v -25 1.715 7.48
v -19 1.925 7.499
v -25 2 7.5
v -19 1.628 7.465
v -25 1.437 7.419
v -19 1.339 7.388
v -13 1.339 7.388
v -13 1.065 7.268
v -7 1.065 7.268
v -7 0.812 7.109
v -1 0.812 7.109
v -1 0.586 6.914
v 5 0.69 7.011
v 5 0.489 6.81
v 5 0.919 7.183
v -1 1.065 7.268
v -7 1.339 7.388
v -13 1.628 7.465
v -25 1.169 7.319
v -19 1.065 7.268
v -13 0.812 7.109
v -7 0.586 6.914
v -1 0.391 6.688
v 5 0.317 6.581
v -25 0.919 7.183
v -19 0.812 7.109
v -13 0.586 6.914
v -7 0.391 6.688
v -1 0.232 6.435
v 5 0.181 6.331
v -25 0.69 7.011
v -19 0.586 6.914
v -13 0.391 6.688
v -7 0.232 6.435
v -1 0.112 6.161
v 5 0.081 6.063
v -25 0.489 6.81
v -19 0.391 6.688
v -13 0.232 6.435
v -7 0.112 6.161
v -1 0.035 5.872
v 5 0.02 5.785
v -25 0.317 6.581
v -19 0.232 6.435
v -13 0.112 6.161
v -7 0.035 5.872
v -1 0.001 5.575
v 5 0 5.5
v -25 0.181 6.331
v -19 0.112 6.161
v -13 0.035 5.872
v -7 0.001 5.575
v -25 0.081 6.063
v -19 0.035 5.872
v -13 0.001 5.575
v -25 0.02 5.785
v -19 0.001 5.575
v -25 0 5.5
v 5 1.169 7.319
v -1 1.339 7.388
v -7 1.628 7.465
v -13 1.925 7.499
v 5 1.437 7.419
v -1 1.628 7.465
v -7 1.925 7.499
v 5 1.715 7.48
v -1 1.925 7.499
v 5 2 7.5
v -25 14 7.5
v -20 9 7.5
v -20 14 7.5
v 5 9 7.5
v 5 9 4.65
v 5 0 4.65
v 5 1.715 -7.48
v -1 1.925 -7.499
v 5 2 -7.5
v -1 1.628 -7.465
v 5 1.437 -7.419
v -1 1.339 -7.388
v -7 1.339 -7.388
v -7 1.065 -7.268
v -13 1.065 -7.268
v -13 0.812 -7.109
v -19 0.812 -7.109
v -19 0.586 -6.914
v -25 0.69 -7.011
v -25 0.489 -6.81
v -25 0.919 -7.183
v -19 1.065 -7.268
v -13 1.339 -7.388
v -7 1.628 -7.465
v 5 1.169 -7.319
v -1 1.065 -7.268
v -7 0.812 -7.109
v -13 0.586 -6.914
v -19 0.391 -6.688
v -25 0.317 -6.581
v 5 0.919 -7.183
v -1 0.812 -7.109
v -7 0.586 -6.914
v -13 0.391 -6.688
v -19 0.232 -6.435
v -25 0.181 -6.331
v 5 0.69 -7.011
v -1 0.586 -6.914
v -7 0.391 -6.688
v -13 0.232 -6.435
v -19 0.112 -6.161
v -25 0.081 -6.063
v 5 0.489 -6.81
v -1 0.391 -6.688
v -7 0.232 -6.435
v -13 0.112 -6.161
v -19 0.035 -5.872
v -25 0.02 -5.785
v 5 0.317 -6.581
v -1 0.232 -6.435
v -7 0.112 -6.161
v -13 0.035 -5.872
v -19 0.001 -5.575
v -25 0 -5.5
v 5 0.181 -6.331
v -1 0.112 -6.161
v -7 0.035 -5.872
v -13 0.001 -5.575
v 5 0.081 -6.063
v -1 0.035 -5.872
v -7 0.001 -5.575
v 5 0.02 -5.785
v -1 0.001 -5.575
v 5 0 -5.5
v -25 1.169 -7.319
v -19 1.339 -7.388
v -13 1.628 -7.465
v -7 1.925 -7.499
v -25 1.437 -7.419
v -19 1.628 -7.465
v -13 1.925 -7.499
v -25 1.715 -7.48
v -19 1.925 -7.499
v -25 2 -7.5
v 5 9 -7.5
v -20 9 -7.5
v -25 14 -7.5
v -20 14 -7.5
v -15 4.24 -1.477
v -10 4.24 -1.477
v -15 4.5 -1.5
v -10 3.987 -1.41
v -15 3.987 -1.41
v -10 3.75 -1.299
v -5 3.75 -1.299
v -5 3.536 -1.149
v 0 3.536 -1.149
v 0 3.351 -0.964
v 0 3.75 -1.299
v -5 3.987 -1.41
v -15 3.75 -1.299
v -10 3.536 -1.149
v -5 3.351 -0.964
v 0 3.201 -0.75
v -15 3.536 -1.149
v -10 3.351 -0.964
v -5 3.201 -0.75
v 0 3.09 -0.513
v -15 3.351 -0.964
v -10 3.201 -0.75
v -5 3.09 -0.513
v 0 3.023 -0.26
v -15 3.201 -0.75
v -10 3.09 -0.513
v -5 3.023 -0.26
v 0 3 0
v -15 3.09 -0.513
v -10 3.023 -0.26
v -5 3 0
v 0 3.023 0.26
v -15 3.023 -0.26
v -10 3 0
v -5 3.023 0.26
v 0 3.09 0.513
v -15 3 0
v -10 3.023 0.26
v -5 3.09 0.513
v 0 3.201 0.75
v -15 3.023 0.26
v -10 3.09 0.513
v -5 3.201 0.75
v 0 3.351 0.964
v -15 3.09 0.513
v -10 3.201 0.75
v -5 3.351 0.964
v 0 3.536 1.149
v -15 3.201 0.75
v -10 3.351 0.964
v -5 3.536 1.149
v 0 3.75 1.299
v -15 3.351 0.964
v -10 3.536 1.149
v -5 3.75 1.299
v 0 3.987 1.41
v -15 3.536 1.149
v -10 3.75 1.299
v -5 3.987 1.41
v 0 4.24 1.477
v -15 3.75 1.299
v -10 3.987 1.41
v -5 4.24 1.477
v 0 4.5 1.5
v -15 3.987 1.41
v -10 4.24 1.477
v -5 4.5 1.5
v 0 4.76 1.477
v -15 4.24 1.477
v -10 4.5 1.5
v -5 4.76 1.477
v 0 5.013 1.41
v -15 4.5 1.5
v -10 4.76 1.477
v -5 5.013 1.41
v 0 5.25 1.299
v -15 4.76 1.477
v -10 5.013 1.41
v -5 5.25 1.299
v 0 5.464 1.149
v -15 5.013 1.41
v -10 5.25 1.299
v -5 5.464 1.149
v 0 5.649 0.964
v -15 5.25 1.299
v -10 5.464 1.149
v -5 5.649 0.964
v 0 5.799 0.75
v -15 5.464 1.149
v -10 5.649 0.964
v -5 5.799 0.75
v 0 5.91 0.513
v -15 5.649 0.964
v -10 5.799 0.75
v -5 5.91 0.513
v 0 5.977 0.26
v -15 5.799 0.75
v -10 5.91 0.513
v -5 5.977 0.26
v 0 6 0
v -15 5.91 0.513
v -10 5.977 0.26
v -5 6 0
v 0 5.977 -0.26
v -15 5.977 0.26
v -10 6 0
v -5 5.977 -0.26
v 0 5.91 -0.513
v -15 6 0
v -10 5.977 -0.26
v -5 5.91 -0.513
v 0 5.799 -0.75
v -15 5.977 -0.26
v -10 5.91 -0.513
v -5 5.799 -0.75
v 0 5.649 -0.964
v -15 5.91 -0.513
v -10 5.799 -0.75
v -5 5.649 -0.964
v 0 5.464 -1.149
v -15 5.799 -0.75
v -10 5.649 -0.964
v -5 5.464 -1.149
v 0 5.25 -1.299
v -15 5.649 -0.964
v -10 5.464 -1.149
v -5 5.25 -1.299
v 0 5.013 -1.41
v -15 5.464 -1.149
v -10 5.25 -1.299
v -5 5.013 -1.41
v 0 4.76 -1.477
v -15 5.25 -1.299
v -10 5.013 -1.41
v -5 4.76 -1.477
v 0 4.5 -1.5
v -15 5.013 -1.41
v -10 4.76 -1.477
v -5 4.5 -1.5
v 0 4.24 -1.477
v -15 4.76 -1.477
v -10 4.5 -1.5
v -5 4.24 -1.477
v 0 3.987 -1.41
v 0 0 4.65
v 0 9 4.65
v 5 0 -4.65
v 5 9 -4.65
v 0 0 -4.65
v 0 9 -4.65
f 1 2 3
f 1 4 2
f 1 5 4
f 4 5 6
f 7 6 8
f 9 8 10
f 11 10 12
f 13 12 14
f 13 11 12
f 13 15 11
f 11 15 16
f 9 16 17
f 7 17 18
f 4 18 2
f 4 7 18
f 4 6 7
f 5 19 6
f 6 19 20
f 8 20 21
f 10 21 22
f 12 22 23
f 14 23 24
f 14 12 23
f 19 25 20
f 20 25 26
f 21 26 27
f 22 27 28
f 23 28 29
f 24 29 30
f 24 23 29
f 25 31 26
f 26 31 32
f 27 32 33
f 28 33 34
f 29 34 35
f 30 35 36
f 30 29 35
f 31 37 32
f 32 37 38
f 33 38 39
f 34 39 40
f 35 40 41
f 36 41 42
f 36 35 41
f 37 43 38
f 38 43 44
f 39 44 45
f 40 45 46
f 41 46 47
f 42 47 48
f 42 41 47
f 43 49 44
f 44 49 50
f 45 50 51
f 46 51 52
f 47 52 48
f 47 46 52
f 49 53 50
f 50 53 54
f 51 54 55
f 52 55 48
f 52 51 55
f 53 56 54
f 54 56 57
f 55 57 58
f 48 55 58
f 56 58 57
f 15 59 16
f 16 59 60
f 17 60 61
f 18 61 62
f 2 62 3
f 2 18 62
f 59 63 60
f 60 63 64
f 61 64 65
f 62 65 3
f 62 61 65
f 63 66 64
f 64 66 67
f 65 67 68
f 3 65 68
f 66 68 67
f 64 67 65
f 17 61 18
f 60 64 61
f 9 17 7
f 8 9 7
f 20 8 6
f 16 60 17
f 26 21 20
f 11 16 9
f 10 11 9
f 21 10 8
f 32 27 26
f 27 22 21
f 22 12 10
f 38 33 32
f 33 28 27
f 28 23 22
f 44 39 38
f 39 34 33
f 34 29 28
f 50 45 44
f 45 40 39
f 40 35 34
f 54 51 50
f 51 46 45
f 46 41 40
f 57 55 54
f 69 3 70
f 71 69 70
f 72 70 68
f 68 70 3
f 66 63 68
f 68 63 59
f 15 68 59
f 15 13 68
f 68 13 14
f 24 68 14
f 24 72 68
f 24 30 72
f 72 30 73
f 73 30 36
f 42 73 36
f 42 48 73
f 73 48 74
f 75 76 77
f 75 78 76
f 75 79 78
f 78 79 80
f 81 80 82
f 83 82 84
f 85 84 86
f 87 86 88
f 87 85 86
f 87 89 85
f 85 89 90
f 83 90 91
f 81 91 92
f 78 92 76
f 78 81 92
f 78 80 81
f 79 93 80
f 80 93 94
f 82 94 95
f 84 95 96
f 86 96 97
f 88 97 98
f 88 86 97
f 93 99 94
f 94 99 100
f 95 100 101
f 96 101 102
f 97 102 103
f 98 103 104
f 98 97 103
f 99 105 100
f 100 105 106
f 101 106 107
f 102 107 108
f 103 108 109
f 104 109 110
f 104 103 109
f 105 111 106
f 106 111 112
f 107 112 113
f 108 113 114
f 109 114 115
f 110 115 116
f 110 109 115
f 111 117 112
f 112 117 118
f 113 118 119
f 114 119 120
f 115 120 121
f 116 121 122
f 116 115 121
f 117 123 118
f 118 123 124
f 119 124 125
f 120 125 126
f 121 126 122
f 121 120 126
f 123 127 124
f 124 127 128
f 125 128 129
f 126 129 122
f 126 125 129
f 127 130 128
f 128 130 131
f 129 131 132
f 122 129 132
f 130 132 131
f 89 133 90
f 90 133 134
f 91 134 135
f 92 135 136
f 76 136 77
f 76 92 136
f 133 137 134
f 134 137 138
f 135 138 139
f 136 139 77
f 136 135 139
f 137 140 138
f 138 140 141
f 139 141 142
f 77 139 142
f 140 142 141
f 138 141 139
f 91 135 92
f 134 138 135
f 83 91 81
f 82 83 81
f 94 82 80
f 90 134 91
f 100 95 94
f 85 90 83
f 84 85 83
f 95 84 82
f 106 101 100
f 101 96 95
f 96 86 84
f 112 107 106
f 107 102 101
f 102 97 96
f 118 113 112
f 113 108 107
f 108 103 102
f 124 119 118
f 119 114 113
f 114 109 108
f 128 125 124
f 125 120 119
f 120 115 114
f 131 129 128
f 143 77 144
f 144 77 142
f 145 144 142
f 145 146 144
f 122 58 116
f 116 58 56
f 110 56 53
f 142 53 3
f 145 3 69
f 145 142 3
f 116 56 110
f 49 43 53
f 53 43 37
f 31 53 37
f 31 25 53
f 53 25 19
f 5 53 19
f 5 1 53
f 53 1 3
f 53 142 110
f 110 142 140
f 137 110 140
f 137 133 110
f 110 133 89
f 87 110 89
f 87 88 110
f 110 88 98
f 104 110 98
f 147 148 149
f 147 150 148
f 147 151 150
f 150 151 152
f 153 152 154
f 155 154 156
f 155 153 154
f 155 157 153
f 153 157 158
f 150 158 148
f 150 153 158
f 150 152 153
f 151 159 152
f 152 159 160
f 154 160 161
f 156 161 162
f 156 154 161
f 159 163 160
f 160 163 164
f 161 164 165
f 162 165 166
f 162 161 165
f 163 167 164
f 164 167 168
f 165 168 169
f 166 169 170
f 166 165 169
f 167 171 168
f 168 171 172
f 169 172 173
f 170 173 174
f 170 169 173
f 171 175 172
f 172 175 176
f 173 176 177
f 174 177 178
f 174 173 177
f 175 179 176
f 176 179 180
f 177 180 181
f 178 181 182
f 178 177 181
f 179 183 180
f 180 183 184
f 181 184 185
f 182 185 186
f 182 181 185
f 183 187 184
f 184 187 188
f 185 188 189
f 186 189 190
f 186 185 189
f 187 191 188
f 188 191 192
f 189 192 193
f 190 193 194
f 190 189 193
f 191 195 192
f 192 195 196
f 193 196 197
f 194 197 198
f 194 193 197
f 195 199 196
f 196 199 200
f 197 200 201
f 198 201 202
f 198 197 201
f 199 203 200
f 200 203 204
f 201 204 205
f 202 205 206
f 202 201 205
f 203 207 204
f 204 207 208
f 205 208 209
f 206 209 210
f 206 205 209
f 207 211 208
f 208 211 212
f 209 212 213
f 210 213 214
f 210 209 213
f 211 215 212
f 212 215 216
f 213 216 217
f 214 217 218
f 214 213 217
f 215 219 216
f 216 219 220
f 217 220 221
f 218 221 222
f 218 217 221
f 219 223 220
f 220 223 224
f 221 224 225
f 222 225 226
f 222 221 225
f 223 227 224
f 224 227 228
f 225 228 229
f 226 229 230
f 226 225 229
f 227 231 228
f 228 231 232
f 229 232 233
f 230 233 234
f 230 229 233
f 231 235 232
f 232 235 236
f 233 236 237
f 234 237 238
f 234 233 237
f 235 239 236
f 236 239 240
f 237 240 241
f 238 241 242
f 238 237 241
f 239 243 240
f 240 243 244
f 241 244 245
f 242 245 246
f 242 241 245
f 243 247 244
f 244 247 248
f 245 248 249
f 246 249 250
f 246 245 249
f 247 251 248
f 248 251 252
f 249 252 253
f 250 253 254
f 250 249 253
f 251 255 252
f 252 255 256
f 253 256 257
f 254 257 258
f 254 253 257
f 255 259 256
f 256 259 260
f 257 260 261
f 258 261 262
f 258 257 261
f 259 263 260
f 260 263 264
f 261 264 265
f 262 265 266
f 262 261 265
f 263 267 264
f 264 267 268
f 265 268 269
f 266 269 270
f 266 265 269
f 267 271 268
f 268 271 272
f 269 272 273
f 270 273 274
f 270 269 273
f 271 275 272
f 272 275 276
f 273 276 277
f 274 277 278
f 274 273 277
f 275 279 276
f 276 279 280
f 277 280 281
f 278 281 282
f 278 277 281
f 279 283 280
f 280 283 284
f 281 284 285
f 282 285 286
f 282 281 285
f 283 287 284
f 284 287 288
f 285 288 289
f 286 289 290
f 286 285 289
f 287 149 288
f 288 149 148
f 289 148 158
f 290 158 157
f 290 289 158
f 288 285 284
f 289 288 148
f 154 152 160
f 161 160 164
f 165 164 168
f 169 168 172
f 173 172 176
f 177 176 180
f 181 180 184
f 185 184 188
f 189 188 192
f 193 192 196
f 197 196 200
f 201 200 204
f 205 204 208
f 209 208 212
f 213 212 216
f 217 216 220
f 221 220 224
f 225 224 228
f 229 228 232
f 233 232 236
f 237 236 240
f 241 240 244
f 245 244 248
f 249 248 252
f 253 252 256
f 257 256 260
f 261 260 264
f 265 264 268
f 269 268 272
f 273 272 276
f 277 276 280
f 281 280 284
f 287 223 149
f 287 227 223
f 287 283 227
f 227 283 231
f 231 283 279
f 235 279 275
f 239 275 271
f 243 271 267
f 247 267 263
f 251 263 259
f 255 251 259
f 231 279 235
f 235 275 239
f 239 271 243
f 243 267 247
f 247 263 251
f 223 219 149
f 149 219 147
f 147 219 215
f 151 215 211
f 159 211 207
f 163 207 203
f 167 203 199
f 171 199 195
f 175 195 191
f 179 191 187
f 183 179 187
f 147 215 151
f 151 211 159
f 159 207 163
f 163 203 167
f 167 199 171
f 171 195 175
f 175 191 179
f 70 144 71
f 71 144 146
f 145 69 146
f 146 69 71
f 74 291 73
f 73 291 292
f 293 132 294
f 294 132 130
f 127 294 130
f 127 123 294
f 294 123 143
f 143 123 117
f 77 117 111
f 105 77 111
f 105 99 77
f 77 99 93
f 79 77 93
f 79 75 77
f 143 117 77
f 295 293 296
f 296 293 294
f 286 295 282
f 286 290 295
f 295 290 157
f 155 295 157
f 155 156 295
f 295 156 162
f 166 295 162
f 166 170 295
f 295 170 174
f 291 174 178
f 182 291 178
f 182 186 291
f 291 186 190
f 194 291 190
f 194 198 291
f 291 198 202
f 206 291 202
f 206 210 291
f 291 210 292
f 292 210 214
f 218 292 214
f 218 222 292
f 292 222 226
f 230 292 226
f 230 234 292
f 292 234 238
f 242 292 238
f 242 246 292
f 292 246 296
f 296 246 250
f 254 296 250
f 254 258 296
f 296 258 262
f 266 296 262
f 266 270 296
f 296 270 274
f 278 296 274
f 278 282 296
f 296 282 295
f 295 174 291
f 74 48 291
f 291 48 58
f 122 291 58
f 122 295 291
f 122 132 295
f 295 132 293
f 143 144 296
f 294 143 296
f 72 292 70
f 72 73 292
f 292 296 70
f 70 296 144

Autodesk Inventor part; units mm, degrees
ref_plane "YZ Plane" through (0, 0, 0) normal (1, 0, 0) x (0, 1, 0)
ref_plane "XZ Plane" through (0, 0, 0) normal (0, 1, 0) x (-1, 0, 0)
ref_plane "XY Plane" through (0, 0, 0) normal (0, 0, 1) x (1, 0, 0)
sketch "Sketch1" plane through (0, 0, 0) normal (0, 1, 0) x (-1, 0, 0)
  line L0 (0, 0) -> (0, 4.65)
  line L1 (0, 4.65) -> (-5, 4.65)
  line L2 (-5, 4.65) -> (-5, 7.5)
  line L3 (-5, 7.5) -> (25, 7.5)
  line L4 (25, 7.5) -> (25, 0)
  line L5 (25, 0) -> (0, 0) construction
  line L6 (0, 0) -> (0, -4.65)
  line L7 (0, -4.65) -> (-5, -4.65)
  line L8 (-5, -4.65) -> (-5, -7.5)
  line L9 (-5, -7.5) -> (25, -7.5)
  line L10 (25, -7.5) -> (25, 0)
  dimension "d7" = 9.3
  dimension "d8" = 15
  dimension "d9" = 5
  dimension "d10" = 25
extrude "Extrusion1" add sketch "Sketch1" along normal blind 9
sketch "Sketch2" plane through (0, 9, 0) normal (0, 1, 0) x (1, 0, 0)
  line L0 (5, 7.5) -> (-25, 7.5) projected
  line L1 (-25, 7.5) -> (-25, -7.5) projected
  line L2 (-25, -7.5) -> (5, -7.5) projected
  line L3 (-20, 7.5) -> (-20, -7.5)
  point P0 (0, 0)
  dimension "d11" = 5
extrude "Extrusion2" add sketch "Sketch2" along normal blind 5
sketch "Sketch3" plane through (0, 0, 4.65) normal (1, 0, 0) x (0, 0, -1)
  line L0 (9.3, 0) -> (9.3, 9) projected
  line L1 (0, 9) -> (9.3, 9) projected
  line L2 (0, 0) -> (0, 9) projected
  line L3 (0, 4.5) -> (9.3, 4.5) construction
  line L4 (4.65, 9) -> (4.65, 0) construction
  circle A0 centre (4.65, 4.5) radius 1.5
  dimension "d4" = 3
extrude "Extrusion3" cut sketch "Sketch3" against normal blind 15
fillet "Fillet1" radius 2 2 edges at (-10, 0, -7.5) (-10, 0, 7.5)
properties part number "Carcasa (parte 2)"
